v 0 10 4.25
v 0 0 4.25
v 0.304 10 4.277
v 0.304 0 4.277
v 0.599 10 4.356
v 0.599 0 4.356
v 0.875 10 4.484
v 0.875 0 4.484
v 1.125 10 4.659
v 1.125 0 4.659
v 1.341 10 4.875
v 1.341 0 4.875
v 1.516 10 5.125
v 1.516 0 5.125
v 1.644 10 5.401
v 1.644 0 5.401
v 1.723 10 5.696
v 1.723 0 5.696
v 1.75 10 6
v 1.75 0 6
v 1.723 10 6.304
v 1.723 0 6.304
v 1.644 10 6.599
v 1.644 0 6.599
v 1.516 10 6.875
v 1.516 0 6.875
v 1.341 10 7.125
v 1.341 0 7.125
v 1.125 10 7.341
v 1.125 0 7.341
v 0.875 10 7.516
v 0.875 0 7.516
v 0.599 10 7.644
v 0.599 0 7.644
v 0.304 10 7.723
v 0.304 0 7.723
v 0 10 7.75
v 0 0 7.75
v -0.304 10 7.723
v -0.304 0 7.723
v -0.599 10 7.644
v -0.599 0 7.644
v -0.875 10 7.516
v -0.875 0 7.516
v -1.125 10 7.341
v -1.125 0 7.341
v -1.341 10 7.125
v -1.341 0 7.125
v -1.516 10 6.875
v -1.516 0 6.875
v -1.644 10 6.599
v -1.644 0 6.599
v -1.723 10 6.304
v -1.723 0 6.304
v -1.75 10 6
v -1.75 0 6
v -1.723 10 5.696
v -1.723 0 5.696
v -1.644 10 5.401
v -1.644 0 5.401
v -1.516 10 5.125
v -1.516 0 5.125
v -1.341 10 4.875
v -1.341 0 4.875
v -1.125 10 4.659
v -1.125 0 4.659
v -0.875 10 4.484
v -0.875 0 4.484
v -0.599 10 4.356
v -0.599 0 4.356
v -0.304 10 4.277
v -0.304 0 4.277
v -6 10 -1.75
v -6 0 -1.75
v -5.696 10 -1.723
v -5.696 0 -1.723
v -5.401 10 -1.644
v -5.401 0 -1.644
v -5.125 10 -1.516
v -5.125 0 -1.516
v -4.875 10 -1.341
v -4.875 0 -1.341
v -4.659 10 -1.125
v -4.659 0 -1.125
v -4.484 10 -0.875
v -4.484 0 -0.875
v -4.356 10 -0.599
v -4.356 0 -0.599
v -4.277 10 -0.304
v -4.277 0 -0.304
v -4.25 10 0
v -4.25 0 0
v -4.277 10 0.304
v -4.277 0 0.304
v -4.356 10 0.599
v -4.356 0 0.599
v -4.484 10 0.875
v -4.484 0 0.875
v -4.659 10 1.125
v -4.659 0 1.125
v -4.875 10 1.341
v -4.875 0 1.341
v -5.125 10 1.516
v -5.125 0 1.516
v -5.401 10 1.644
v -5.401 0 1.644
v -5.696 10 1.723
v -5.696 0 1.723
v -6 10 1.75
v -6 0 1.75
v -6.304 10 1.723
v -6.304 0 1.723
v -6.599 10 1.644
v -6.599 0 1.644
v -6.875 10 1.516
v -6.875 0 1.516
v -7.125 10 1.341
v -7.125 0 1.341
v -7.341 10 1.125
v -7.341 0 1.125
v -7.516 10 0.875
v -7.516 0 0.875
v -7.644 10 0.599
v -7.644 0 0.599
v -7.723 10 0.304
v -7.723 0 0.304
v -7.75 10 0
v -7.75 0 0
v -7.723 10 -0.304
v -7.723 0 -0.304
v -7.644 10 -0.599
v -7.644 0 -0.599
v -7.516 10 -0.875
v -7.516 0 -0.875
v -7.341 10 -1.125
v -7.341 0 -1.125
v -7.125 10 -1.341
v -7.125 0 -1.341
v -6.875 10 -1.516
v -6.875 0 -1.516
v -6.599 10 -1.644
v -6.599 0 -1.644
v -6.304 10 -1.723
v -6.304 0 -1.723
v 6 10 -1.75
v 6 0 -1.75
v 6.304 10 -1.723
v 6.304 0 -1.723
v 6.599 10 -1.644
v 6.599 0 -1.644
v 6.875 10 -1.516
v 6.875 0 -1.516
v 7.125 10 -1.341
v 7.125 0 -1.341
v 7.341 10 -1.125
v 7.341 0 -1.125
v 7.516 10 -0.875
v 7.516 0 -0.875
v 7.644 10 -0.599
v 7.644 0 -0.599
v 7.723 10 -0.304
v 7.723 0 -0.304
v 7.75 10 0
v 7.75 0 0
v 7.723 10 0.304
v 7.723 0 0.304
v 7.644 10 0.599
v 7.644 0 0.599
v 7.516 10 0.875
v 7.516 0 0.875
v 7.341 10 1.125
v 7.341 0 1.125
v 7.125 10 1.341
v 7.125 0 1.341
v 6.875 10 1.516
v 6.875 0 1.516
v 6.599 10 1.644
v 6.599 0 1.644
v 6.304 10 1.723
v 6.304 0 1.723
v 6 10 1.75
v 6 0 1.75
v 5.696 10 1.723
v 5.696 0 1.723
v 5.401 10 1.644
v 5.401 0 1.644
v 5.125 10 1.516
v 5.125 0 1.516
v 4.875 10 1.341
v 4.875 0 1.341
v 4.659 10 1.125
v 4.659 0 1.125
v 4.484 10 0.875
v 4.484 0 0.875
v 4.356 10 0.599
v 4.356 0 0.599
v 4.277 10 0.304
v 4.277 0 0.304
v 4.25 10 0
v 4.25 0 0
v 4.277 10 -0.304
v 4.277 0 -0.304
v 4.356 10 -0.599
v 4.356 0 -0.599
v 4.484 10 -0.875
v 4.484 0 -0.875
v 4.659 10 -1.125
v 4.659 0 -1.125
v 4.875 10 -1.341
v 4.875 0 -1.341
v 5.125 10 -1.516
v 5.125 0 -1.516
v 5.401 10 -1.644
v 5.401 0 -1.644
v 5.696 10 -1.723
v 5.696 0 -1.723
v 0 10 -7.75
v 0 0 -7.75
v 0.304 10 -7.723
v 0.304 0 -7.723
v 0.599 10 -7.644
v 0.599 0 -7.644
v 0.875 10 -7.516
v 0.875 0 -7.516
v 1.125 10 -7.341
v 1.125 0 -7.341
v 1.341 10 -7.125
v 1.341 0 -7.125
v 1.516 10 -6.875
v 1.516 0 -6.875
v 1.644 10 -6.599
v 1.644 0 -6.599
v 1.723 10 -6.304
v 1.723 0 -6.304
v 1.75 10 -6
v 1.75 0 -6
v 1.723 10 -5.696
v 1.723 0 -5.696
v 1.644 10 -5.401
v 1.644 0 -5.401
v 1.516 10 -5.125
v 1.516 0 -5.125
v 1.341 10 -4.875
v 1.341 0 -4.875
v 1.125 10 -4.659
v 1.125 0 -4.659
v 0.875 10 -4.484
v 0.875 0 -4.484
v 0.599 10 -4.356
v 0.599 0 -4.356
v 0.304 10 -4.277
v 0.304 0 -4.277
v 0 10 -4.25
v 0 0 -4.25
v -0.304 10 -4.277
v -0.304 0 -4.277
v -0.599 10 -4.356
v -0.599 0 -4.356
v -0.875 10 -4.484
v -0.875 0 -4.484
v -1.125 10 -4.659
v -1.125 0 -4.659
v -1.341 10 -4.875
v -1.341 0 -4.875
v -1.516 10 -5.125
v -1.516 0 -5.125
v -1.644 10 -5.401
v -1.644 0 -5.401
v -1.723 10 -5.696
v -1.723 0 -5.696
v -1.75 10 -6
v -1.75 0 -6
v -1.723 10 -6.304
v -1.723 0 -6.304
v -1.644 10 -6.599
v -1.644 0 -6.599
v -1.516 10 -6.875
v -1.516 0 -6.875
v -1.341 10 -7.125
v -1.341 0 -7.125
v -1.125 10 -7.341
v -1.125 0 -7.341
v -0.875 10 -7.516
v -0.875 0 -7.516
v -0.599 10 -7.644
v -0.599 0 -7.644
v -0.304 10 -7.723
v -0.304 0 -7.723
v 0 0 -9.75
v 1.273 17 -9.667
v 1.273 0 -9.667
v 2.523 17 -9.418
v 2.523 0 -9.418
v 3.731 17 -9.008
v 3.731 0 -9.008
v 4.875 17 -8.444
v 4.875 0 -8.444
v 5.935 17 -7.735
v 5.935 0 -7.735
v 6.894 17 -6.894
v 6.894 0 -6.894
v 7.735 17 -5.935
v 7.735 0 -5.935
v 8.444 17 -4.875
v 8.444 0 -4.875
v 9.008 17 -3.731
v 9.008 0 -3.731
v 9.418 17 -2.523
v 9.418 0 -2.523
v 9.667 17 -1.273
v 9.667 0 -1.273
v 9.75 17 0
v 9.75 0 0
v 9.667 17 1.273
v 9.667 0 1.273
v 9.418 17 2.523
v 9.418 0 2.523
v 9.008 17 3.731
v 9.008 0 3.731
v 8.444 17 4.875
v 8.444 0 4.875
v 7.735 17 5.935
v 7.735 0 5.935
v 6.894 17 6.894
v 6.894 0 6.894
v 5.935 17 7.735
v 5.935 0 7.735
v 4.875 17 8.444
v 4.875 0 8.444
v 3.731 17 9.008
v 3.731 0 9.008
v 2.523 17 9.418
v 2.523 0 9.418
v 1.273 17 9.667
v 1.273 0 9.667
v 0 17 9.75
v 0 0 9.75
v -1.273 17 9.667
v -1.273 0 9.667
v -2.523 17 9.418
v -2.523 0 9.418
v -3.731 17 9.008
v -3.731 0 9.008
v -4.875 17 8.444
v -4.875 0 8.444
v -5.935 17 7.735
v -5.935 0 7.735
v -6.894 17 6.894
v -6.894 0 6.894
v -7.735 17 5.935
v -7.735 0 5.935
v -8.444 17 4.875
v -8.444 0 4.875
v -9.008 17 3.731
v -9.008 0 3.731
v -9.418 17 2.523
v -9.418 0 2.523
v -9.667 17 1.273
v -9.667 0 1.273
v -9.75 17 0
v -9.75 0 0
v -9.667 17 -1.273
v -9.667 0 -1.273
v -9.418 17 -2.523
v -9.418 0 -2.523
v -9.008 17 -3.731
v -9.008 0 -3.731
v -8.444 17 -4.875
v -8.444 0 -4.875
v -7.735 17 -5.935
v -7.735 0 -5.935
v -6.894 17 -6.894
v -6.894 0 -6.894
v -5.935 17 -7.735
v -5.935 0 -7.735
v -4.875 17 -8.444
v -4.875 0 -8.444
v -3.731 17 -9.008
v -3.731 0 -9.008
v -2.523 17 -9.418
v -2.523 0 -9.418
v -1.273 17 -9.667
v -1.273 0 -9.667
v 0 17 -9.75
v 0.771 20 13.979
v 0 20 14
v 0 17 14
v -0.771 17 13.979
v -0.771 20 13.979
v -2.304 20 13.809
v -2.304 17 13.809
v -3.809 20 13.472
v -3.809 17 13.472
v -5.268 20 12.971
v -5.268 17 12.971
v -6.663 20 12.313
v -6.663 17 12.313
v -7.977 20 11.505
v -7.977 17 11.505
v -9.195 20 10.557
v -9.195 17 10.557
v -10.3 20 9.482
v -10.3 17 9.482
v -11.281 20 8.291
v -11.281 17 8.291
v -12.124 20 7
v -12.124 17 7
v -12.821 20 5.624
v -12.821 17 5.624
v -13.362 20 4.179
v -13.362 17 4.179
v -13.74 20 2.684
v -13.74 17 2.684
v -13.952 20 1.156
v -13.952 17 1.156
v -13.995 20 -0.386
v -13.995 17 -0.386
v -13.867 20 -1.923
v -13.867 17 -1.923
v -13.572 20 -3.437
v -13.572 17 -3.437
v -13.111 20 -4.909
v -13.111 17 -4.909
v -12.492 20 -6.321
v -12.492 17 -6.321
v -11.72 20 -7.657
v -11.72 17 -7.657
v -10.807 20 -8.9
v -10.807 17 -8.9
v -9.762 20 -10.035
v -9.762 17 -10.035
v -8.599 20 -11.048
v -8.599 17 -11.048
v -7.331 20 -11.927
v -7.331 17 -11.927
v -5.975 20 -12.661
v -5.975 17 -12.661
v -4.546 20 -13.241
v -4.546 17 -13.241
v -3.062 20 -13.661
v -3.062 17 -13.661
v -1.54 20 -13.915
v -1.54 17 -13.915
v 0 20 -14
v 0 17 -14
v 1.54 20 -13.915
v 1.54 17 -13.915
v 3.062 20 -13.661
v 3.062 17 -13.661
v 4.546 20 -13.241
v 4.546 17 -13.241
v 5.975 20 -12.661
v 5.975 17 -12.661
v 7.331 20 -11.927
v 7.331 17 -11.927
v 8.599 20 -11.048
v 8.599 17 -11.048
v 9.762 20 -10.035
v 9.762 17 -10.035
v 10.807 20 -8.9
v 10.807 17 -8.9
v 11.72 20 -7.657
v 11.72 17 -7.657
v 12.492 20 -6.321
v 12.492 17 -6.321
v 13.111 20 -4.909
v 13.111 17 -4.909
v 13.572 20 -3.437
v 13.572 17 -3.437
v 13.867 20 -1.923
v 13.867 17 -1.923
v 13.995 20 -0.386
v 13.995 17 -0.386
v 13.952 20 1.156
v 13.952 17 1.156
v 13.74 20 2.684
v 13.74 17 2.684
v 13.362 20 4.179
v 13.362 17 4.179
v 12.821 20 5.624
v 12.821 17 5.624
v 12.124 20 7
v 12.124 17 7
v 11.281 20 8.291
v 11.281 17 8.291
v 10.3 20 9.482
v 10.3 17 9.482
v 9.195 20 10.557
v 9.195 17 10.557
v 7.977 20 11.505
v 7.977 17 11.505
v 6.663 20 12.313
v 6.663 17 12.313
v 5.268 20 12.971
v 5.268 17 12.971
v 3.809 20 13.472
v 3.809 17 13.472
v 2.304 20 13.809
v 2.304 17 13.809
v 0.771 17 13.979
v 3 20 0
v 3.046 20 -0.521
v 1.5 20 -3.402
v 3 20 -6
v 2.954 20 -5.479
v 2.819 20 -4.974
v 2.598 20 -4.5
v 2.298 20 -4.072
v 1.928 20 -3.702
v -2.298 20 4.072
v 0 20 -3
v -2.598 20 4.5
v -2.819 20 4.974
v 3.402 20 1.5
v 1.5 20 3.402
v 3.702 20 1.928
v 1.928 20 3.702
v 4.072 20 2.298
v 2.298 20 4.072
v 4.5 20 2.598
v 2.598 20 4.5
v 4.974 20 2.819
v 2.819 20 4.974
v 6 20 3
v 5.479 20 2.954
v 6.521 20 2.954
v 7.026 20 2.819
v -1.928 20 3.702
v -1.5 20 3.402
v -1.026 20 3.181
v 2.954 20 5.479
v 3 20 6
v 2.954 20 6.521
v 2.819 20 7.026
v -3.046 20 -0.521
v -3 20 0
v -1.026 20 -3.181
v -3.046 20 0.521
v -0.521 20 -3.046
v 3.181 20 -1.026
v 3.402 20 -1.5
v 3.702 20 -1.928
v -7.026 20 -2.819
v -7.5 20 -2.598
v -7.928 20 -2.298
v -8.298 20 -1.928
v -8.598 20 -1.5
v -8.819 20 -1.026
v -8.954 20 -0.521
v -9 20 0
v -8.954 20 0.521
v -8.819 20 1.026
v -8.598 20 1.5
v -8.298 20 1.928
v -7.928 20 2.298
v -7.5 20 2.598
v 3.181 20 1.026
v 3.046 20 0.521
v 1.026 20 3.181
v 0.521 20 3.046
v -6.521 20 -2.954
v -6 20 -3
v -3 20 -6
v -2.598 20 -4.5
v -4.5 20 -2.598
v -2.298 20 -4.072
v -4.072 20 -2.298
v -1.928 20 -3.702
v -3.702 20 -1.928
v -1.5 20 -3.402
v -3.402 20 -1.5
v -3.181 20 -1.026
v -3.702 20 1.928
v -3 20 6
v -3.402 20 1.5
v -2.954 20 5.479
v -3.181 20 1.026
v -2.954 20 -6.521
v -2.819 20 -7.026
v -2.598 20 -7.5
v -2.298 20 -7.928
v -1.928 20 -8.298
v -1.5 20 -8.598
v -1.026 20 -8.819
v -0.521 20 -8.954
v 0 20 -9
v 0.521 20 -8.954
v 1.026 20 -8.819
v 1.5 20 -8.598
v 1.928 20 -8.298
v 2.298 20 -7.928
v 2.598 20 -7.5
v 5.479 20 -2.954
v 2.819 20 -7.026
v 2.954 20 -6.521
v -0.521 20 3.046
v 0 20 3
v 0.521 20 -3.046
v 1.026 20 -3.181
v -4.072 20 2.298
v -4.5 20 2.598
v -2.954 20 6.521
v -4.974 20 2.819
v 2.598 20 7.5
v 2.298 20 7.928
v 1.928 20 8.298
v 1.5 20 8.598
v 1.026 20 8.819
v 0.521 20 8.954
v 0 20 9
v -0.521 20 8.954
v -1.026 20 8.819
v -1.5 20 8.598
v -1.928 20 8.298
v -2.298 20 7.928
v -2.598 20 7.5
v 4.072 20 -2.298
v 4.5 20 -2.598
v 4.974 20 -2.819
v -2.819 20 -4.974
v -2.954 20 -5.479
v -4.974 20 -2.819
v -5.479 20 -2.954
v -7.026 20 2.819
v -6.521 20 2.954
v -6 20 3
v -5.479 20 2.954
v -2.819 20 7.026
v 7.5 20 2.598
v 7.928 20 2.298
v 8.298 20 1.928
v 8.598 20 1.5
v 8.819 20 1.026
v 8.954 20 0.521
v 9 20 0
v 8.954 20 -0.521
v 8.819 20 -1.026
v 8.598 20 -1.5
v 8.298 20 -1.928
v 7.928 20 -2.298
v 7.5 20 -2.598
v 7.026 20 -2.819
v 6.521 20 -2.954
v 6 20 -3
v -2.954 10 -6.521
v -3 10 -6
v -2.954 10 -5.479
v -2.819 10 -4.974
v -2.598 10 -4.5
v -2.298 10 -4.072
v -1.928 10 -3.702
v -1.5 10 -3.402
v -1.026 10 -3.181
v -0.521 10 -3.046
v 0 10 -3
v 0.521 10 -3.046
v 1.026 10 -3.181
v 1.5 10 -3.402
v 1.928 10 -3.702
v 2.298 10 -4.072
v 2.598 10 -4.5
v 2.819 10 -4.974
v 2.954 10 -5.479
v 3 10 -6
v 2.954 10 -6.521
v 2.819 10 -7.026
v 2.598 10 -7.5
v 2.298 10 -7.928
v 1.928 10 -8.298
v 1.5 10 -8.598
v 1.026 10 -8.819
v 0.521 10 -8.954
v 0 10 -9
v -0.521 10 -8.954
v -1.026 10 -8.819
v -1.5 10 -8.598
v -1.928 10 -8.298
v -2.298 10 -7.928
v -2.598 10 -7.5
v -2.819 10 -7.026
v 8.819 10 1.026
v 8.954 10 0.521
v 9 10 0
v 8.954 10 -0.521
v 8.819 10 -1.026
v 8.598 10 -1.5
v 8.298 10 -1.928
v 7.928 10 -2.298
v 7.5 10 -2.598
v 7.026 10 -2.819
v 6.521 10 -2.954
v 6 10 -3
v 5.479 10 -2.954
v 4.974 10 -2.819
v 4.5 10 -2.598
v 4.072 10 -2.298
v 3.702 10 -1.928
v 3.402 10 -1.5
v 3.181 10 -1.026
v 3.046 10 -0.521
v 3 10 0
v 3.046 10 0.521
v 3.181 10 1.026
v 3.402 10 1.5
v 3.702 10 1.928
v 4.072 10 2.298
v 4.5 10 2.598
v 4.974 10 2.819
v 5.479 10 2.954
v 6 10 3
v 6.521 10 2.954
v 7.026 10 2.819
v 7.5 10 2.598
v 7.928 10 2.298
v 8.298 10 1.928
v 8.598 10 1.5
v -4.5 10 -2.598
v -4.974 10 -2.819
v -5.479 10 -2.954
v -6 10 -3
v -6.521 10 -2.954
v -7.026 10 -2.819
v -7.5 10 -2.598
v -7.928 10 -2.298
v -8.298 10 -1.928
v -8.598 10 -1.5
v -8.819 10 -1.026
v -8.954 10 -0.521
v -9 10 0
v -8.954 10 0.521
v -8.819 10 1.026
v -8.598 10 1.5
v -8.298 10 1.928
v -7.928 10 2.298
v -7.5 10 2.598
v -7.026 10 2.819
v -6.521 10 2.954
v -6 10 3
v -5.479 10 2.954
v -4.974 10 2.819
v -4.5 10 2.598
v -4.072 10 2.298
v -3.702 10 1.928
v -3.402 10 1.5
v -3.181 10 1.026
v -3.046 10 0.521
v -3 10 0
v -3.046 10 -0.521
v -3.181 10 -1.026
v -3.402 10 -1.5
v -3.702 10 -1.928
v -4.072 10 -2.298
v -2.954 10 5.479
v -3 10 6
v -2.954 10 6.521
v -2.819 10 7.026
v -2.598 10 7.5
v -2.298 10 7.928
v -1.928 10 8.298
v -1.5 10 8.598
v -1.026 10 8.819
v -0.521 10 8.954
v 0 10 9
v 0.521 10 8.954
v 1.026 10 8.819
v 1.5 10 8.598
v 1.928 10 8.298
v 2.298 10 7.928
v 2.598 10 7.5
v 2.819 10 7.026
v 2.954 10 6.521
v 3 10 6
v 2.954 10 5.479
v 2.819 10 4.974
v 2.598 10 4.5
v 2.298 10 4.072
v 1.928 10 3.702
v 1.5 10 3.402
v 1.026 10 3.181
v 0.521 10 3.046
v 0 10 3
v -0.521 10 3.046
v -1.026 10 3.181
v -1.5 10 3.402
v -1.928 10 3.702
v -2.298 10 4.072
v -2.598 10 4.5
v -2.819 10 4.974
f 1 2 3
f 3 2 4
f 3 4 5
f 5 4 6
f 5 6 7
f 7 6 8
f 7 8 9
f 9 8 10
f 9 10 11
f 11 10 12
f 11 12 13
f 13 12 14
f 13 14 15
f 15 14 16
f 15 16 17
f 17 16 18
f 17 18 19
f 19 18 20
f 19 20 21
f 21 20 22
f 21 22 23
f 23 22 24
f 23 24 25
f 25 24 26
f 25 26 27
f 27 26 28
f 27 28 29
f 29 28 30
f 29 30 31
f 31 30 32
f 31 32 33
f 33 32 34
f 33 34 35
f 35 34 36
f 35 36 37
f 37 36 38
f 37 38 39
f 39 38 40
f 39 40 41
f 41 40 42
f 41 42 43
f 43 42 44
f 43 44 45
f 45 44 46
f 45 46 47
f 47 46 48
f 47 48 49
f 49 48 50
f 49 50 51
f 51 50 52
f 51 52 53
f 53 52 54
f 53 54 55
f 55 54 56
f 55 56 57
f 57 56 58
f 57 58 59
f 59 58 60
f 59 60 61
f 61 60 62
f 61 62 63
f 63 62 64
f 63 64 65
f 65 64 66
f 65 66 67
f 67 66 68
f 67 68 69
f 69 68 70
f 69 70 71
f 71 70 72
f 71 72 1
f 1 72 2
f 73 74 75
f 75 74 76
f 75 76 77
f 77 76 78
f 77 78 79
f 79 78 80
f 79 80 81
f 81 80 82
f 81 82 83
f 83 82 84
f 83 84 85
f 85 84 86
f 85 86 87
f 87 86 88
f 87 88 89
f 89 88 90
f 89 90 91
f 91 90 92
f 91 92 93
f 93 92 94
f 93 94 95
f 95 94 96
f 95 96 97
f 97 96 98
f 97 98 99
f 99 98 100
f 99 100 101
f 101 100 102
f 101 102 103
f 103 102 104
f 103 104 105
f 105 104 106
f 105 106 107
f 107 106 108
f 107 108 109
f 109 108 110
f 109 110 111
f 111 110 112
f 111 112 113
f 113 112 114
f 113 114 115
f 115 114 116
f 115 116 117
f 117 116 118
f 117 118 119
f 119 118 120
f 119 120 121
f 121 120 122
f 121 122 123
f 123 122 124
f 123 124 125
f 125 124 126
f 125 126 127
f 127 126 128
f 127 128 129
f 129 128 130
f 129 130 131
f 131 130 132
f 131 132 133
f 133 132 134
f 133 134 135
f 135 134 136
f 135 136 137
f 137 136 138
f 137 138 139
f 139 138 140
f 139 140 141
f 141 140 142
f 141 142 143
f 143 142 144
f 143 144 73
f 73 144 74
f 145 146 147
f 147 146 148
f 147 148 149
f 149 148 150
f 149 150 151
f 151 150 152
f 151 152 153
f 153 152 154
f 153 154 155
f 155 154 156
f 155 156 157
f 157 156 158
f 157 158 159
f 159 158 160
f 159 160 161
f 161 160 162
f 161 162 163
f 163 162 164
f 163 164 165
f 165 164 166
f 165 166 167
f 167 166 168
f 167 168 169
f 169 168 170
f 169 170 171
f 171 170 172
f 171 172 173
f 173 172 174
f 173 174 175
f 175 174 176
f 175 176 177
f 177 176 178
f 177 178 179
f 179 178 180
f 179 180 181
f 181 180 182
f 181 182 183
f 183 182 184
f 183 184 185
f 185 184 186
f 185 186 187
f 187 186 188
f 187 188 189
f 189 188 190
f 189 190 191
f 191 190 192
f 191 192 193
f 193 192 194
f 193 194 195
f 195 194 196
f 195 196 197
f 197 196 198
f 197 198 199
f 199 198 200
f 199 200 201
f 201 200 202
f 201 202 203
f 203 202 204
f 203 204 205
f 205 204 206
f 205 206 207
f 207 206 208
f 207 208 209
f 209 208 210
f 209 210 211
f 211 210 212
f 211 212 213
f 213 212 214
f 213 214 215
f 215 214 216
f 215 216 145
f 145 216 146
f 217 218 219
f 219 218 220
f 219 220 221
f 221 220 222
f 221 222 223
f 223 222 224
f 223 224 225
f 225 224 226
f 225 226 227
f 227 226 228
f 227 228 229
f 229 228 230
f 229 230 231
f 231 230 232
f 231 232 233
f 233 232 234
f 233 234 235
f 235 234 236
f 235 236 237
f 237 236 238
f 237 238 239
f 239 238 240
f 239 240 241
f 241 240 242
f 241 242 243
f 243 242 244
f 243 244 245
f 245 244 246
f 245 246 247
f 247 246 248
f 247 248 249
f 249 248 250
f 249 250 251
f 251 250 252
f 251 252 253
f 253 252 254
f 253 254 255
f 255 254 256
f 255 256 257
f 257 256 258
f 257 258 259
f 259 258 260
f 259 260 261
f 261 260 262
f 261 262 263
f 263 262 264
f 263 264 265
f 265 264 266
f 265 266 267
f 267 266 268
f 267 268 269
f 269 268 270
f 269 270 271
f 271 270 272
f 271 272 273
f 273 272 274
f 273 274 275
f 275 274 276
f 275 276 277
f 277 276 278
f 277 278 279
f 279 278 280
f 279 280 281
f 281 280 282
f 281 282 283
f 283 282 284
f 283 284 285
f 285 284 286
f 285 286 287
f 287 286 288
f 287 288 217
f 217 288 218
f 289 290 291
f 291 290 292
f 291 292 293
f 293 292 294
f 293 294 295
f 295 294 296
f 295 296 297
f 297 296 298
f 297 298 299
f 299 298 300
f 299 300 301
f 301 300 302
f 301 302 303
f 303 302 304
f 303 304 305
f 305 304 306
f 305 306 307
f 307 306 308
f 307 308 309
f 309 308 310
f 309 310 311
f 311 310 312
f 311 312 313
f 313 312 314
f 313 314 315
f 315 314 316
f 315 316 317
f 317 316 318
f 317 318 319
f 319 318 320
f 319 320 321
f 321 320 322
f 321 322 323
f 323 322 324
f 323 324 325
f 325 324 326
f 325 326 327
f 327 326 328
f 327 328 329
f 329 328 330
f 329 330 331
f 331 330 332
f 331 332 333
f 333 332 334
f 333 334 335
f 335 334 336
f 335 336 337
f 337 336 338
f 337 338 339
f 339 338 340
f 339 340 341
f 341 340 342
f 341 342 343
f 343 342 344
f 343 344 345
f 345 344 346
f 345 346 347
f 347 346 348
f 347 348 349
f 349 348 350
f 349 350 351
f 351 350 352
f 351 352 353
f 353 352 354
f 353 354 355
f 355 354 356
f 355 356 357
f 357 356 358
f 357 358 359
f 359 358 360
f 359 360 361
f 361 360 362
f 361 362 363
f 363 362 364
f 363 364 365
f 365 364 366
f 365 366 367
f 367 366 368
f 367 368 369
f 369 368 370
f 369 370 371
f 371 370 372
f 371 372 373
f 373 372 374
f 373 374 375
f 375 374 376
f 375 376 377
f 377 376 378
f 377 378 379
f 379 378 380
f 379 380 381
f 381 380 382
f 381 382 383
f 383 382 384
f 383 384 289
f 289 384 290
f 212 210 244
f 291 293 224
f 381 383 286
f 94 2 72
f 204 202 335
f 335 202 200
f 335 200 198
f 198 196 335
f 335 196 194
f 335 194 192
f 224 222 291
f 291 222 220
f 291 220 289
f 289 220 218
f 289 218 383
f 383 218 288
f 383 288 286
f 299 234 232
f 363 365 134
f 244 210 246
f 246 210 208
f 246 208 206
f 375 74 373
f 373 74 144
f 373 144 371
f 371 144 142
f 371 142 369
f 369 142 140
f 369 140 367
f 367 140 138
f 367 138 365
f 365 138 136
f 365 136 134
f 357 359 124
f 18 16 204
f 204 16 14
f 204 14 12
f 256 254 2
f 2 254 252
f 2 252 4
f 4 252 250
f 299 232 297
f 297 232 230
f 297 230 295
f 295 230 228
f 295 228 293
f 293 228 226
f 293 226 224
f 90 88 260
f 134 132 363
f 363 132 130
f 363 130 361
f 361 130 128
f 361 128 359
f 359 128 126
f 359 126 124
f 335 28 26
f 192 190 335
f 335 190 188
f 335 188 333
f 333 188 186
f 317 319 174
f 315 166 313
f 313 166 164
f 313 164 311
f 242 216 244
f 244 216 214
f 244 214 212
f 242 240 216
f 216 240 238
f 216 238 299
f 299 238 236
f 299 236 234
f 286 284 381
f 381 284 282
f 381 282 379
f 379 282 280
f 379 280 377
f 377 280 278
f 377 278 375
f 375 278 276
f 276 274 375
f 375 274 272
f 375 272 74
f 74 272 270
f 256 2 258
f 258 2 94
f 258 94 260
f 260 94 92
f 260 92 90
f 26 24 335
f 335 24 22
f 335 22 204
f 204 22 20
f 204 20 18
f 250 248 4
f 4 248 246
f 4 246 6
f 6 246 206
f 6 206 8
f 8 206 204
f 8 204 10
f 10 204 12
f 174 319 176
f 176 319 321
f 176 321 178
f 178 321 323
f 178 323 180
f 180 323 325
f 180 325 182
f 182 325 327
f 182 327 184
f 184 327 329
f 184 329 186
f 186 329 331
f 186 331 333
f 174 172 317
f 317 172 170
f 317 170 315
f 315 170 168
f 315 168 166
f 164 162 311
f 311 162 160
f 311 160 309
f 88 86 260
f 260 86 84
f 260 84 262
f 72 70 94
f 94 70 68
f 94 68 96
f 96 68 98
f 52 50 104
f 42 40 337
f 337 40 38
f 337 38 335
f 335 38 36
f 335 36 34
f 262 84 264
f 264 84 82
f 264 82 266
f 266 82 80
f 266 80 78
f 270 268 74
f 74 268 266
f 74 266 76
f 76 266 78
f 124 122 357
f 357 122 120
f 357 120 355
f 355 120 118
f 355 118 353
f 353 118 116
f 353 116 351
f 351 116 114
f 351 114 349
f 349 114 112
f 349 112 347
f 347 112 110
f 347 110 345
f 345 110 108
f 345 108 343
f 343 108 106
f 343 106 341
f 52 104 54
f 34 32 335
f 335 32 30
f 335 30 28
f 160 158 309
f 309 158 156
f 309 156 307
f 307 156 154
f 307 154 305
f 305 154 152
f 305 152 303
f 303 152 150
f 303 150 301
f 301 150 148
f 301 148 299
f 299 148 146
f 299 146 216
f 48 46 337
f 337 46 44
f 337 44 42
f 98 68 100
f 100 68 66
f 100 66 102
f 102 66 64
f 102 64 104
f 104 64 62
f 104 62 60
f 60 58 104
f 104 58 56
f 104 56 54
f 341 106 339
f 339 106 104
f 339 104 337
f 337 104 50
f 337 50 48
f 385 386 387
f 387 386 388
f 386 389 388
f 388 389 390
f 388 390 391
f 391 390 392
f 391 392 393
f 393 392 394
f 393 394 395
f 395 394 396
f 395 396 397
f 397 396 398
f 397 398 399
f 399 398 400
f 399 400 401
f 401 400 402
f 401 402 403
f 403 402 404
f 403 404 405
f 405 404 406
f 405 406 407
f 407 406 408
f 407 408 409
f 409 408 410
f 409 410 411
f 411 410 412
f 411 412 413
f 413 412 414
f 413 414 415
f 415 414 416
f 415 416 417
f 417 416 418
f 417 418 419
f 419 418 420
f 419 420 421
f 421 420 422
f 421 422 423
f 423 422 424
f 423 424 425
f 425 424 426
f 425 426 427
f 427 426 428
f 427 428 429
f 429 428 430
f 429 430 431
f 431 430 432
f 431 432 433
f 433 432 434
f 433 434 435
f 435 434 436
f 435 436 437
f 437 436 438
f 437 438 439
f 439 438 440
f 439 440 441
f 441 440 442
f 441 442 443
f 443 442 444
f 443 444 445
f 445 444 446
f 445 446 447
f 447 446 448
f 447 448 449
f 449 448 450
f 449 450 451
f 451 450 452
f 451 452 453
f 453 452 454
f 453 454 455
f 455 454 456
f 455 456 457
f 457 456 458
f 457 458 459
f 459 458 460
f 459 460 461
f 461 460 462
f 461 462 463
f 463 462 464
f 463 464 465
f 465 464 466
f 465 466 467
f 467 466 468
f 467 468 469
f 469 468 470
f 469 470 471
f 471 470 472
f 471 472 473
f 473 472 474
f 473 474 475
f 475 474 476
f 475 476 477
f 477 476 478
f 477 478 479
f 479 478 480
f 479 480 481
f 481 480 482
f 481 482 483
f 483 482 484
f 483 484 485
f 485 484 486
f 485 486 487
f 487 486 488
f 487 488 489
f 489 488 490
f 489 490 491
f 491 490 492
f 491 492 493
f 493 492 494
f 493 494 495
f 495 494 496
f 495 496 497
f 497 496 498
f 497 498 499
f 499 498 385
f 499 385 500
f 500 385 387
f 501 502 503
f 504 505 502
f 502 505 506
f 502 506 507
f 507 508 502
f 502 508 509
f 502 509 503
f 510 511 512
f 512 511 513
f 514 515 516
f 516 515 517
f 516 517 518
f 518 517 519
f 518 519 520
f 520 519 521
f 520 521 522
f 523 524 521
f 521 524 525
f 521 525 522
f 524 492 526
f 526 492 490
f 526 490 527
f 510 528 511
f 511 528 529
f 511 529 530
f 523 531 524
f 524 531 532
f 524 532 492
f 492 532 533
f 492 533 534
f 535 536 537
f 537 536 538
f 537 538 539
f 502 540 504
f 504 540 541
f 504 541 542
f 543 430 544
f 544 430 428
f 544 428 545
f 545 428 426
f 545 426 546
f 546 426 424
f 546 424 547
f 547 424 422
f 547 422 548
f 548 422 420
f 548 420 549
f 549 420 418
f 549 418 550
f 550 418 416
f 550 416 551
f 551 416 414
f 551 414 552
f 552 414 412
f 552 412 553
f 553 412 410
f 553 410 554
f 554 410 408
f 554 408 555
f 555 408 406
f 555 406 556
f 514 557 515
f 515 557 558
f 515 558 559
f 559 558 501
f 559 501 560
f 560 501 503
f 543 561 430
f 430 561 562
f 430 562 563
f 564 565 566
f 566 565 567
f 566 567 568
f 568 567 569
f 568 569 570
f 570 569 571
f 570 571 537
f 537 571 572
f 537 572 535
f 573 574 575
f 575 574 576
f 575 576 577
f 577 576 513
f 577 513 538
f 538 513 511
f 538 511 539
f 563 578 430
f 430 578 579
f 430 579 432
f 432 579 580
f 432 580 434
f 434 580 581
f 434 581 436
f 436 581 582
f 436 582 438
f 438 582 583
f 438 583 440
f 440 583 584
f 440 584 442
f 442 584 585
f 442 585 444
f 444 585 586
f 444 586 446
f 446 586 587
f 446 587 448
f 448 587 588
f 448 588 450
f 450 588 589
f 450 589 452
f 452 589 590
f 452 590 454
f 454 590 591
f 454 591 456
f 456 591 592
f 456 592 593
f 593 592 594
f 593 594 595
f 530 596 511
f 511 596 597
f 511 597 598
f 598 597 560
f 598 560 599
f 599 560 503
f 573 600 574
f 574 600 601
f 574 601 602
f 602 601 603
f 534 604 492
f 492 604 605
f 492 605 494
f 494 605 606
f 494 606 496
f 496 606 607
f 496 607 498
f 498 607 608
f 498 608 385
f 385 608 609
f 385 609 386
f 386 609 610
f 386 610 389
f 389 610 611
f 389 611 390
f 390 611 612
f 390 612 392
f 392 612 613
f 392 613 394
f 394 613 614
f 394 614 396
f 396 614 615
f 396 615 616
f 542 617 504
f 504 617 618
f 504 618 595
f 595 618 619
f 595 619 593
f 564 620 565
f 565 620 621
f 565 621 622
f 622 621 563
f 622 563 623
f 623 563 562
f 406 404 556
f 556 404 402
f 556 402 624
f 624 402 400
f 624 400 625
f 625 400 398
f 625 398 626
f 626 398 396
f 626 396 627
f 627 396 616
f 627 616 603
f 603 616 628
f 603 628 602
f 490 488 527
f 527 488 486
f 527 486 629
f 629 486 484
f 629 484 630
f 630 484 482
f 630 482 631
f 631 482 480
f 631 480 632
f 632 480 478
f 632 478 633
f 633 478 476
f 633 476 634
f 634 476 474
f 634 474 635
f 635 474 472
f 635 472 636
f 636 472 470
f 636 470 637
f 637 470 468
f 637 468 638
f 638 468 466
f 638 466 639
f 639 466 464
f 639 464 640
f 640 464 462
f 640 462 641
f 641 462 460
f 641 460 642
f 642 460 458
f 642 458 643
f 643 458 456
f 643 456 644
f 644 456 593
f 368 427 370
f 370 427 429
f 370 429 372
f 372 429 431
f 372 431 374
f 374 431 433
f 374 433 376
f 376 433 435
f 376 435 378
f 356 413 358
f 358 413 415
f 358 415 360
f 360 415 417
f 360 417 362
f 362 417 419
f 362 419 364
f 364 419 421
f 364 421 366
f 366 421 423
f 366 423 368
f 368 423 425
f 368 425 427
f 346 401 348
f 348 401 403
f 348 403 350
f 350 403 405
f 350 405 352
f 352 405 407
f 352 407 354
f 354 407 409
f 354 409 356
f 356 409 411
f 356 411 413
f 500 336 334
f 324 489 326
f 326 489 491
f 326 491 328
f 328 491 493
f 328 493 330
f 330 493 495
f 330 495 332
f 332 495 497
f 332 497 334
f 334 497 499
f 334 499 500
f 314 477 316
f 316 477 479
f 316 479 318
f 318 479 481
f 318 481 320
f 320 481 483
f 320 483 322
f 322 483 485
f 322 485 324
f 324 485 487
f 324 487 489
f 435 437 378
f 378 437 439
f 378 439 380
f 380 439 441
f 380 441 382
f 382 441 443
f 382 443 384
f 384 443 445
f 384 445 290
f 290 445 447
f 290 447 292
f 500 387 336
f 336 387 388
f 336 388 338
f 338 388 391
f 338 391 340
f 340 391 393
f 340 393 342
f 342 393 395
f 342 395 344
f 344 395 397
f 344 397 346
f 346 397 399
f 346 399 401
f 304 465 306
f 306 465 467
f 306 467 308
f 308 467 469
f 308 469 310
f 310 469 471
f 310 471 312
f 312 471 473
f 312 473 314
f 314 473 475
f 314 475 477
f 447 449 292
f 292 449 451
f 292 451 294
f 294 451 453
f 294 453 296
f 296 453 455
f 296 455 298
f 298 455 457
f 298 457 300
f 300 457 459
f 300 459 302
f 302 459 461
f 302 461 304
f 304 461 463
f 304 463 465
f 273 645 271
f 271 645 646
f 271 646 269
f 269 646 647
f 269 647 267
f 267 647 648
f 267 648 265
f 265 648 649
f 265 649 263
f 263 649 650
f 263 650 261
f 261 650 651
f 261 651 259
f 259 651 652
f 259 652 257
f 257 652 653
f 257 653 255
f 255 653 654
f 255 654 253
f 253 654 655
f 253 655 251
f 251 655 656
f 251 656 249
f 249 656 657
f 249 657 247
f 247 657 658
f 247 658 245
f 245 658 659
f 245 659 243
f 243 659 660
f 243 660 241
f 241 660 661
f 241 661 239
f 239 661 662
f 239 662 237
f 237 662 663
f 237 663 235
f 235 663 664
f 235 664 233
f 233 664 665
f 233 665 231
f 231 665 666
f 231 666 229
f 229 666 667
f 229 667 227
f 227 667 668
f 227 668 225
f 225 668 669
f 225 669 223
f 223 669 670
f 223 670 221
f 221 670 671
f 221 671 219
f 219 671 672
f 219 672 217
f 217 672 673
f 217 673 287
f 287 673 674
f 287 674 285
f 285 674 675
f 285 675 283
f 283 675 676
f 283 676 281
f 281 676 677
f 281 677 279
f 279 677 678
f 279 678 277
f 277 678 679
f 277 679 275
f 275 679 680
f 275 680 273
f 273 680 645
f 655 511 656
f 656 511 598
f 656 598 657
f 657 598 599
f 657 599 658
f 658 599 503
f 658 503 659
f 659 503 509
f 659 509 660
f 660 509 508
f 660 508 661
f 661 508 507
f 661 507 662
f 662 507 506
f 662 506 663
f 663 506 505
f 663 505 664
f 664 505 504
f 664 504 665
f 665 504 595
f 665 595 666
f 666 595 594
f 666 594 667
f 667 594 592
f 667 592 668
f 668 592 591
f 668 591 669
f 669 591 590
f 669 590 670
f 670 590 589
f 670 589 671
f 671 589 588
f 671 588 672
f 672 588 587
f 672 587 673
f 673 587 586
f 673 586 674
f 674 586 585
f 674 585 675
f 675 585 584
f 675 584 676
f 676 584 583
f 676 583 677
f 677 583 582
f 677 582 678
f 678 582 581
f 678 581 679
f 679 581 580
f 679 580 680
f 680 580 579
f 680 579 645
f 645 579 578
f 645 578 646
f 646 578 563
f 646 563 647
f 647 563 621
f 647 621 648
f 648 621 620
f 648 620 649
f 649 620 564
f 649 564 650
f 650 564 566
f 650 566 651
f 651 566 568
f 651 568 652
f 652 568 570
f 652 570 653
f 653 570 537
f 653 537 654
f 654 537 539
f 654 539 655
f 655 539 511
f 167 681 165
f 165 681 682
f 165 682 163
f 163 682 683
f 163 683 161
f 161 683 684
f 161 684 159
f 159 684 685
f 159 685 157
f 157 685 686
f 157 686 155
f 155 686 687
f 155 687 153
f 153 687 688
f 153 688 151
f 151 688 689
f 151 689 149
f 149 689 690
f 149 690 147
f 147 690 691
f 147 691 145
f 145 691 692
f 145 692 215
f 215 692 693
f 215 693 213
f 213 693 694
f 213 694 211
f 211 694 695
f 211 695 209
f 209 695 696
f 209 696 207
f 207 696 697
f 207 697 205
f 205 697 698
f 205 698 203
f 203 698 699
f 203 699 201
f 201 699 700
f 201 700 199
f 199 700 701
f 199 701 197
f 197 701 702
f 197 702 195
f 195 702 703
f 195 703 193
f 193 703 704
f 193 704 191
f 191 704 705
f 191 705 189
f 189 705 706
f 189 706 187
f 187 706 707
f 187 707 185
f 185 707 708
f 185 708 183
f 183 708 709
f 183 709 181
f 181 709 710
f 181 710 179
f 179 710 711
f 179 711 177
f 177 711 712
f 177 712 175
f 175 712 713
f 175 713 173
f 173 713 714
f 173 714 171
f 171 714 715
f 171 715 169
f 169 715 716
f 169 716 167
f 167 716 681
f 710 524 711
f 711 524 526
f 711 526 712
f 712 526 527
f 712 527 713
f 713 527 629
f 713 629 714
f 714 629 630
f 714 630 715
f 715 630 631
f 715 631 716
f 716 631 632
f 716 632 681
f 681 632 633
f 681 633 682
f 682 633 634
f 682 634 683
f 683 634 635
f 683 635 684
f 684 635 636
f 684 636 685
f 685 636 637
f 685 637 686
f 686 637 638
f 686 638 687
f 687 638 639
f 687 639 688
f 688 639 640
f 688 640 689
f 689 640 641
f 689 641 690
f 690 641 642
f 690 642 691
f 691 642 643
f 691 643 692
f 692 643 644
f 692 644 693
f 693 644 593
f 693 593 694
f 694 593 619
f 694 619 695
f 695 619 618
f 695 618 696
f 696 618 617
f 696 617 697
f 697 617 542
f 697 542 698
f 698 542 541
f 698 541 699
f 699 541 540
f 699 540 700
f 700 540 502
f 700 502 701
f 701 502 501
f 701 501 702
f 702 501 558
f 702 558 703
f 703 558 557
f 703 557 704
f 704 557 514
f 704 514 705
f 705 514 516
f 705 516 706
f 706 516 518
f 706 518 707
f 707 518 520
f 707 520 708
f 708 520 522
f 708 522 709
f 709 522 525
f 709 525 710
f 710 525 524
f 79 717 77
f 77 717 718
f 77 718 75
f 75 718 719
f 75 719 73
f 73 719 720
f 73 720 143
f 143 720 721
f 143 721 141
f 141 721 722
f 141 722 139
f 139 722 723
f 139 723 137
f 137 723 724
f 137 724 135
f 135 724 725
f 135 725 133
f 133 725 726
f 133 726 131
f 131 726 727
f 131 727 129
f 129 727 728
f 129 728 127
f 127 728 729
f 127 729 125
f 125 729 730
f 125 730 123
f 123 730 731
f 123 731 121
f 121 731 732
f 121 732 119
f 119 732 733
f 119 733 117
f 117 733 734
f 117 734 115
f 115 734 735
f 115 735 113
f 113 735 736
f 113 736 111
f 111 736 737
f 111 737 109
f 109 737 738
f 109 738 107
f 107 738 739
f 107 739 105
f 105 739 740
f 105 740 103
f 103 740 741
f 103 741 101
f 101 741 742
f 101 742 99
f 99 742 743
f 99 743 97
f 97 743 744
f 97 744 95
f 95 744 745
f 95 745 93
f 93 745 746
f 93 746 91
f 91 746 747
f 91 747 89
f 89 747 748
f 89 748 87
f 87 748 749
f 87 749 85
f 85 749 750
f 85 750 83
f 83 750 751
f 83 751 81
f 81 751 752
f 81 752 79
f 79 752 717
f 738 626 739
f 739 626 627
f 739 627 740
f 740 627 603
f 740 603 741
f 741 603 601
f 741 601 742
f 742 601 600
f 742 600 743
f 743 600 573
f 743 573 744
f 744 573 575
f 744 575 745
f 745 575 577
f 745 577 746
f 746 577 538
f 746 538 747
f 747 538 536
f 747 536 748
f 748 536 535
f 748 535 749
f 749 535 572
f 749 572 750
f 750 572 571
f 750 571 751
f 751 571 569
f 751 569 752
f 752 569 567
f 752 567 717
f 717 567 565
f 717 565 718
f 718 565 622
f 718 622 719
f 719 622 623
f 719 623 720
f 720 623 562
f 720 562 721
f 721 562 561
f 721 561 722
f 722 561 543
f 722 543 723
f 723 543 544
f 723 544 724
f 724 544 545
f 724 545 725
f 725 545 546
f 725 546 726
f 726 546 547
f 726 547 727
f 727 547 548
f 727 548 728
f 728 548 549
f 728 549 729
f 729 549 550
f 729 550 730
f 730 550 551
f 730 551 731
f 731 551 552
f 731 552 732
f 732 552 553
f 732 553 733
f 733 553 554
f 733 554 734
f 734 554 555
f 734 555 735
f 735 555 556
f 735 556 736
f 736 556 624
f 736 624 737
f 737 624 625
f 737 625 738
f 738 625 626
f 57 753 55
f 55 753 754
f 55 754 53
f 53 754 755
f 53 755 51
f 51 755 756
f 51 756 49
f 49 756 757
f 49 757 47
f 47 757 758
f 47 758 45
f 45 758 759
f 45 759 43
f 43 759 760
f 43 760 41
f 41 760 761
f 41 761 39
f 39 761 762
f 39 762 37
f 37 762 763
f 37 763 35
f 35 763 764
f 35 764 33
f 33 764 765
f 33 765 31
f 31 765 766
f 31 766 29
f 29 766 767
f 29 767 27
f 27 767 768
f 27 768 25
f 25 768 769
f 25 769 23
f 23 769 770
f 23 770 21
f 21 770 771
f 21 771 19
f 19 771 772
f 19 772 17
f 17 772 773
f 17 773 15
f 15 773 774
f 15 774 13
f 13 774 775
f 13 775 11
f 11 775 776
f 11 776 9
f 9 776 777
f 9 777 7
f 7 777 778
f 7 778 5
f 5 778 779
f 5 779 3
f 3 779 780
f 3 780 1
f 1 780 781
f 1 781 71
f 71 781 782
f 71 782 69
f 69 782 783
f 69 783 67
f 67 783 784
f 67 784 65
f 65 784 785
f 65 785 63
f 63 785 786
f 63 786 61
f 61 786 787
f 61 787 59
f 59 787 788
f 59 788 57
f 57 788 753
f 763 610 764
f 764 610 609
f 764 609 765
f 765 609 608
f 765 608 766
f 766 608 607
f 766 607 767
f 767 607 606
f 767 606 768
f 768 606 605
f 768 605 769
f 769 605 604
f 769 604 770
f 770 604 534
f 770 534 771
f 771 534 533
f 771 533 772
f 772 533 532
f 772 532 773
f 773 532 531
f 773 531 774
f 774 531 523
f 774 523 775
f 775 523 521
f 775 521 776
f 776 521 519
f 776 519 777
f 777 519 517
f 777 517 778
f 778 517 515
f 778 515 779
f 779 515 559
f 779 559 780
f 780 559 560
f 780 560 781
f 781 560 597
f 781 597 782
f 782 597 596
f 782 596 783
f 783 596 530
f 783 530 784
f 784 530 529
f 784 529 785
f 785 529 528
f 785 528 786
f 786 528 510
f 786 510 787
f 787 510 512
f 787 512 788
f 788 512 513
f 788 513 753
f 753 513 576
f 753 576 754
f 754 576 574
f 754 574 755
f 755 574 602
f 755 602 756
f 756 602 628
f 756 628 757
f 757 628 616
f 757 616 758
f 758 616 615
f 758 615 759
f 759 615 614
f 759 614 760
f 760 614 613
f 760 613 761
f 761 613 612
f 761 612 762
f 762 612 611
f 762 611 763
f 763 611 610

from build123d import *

# Parameters (mm, degrees)
SKETCH1_R           = 9.75
BOSS_EXTRUDE1_DEPTH = 17
SKETCH2_R           = 14
BOSS_EXTRUDE2_DEPTH = 3
SKETCH3_R           = 1.75
CUT_EXTRUDE1_DEPTH  = 21
CIRPATTERN1_COUNT   = 4
SKETCH4_R           = 3
CUT_EXTRUDE2_DEPTH  = 10
CIRPATTERN2_COUNT   = 4


with BuildPart() as part:
    # Sketch1 → Boss-Extrude1 (new body)
    with BuildSketch(Plane(origin=(0, 0, 0), x_dir=(1, 0, 0), z_dir=(0, 1, 0))):
        Circle(SKETCH1_R)
    extrude(amount=BOSS_EXTRUDE1_DEPTH)

    # Sketch2 → Boss-Extrude2 (add)
    with BuildSketch(Plane(origin=(0, 17, 0), x_dir=(1, 0, 0), z_dir=(0, 1, 0))):
        Circle(SKETCH2_R)
    extrude(amount=BOSS_EXTRUDE2_DEPTH)

    # Sketch3 → Cut-Extrude1 (cut, through all)
    with BuildSketch(Plane.XZ):
        with Locations((0, 6)):
            Circle(SKETCH3_R)
    cut_extrude1 = extrude(amount=-CUT_EXTRUDE1_DEPTH, mode=Mode.SUBTRACT)

    # CirPattern1: Cut-Extrude1 ×4 about axis
    cirpattern1_axis = Axis((0, 0, 0), (0, 1, 0))
    for i in range(1, CIRPATTERN1_COUNT):
        add(cut_extrude1.rotate(cirpattern1_axis, i * 360 / CIRPATTERN1_COUNT), mode=Mode.SUBTRACT)

    # Sketch4 → Cut-Extrude2 (cut)
    with BuildSketch(Plane(origin=(0, 20, 0), x_dir=(1, 0, 0), z_dir=(0, 1, 0))):
        with Locations((0, 6)):
            Circle(SKETCH4_R)
    cut_extrude2 = extrude(amount=-CUT_EXTRUDE2_DEPTH, mode=Mode.SUBTRACT)

    # CirPattern2: Cut-Extrude2 ×4 about axis
    cirpattern2_axis = Axis((0, 0, 0), (0, 1, 0))
    for i in range(1, CIRPATTERN2_COUNT):
        add(cut_extrude2.rotate(cirpattern2_axis, i * 360 / CIRPATTERN2_COUNT), mode=Mode.SUBTRACT)


solid = part.part
